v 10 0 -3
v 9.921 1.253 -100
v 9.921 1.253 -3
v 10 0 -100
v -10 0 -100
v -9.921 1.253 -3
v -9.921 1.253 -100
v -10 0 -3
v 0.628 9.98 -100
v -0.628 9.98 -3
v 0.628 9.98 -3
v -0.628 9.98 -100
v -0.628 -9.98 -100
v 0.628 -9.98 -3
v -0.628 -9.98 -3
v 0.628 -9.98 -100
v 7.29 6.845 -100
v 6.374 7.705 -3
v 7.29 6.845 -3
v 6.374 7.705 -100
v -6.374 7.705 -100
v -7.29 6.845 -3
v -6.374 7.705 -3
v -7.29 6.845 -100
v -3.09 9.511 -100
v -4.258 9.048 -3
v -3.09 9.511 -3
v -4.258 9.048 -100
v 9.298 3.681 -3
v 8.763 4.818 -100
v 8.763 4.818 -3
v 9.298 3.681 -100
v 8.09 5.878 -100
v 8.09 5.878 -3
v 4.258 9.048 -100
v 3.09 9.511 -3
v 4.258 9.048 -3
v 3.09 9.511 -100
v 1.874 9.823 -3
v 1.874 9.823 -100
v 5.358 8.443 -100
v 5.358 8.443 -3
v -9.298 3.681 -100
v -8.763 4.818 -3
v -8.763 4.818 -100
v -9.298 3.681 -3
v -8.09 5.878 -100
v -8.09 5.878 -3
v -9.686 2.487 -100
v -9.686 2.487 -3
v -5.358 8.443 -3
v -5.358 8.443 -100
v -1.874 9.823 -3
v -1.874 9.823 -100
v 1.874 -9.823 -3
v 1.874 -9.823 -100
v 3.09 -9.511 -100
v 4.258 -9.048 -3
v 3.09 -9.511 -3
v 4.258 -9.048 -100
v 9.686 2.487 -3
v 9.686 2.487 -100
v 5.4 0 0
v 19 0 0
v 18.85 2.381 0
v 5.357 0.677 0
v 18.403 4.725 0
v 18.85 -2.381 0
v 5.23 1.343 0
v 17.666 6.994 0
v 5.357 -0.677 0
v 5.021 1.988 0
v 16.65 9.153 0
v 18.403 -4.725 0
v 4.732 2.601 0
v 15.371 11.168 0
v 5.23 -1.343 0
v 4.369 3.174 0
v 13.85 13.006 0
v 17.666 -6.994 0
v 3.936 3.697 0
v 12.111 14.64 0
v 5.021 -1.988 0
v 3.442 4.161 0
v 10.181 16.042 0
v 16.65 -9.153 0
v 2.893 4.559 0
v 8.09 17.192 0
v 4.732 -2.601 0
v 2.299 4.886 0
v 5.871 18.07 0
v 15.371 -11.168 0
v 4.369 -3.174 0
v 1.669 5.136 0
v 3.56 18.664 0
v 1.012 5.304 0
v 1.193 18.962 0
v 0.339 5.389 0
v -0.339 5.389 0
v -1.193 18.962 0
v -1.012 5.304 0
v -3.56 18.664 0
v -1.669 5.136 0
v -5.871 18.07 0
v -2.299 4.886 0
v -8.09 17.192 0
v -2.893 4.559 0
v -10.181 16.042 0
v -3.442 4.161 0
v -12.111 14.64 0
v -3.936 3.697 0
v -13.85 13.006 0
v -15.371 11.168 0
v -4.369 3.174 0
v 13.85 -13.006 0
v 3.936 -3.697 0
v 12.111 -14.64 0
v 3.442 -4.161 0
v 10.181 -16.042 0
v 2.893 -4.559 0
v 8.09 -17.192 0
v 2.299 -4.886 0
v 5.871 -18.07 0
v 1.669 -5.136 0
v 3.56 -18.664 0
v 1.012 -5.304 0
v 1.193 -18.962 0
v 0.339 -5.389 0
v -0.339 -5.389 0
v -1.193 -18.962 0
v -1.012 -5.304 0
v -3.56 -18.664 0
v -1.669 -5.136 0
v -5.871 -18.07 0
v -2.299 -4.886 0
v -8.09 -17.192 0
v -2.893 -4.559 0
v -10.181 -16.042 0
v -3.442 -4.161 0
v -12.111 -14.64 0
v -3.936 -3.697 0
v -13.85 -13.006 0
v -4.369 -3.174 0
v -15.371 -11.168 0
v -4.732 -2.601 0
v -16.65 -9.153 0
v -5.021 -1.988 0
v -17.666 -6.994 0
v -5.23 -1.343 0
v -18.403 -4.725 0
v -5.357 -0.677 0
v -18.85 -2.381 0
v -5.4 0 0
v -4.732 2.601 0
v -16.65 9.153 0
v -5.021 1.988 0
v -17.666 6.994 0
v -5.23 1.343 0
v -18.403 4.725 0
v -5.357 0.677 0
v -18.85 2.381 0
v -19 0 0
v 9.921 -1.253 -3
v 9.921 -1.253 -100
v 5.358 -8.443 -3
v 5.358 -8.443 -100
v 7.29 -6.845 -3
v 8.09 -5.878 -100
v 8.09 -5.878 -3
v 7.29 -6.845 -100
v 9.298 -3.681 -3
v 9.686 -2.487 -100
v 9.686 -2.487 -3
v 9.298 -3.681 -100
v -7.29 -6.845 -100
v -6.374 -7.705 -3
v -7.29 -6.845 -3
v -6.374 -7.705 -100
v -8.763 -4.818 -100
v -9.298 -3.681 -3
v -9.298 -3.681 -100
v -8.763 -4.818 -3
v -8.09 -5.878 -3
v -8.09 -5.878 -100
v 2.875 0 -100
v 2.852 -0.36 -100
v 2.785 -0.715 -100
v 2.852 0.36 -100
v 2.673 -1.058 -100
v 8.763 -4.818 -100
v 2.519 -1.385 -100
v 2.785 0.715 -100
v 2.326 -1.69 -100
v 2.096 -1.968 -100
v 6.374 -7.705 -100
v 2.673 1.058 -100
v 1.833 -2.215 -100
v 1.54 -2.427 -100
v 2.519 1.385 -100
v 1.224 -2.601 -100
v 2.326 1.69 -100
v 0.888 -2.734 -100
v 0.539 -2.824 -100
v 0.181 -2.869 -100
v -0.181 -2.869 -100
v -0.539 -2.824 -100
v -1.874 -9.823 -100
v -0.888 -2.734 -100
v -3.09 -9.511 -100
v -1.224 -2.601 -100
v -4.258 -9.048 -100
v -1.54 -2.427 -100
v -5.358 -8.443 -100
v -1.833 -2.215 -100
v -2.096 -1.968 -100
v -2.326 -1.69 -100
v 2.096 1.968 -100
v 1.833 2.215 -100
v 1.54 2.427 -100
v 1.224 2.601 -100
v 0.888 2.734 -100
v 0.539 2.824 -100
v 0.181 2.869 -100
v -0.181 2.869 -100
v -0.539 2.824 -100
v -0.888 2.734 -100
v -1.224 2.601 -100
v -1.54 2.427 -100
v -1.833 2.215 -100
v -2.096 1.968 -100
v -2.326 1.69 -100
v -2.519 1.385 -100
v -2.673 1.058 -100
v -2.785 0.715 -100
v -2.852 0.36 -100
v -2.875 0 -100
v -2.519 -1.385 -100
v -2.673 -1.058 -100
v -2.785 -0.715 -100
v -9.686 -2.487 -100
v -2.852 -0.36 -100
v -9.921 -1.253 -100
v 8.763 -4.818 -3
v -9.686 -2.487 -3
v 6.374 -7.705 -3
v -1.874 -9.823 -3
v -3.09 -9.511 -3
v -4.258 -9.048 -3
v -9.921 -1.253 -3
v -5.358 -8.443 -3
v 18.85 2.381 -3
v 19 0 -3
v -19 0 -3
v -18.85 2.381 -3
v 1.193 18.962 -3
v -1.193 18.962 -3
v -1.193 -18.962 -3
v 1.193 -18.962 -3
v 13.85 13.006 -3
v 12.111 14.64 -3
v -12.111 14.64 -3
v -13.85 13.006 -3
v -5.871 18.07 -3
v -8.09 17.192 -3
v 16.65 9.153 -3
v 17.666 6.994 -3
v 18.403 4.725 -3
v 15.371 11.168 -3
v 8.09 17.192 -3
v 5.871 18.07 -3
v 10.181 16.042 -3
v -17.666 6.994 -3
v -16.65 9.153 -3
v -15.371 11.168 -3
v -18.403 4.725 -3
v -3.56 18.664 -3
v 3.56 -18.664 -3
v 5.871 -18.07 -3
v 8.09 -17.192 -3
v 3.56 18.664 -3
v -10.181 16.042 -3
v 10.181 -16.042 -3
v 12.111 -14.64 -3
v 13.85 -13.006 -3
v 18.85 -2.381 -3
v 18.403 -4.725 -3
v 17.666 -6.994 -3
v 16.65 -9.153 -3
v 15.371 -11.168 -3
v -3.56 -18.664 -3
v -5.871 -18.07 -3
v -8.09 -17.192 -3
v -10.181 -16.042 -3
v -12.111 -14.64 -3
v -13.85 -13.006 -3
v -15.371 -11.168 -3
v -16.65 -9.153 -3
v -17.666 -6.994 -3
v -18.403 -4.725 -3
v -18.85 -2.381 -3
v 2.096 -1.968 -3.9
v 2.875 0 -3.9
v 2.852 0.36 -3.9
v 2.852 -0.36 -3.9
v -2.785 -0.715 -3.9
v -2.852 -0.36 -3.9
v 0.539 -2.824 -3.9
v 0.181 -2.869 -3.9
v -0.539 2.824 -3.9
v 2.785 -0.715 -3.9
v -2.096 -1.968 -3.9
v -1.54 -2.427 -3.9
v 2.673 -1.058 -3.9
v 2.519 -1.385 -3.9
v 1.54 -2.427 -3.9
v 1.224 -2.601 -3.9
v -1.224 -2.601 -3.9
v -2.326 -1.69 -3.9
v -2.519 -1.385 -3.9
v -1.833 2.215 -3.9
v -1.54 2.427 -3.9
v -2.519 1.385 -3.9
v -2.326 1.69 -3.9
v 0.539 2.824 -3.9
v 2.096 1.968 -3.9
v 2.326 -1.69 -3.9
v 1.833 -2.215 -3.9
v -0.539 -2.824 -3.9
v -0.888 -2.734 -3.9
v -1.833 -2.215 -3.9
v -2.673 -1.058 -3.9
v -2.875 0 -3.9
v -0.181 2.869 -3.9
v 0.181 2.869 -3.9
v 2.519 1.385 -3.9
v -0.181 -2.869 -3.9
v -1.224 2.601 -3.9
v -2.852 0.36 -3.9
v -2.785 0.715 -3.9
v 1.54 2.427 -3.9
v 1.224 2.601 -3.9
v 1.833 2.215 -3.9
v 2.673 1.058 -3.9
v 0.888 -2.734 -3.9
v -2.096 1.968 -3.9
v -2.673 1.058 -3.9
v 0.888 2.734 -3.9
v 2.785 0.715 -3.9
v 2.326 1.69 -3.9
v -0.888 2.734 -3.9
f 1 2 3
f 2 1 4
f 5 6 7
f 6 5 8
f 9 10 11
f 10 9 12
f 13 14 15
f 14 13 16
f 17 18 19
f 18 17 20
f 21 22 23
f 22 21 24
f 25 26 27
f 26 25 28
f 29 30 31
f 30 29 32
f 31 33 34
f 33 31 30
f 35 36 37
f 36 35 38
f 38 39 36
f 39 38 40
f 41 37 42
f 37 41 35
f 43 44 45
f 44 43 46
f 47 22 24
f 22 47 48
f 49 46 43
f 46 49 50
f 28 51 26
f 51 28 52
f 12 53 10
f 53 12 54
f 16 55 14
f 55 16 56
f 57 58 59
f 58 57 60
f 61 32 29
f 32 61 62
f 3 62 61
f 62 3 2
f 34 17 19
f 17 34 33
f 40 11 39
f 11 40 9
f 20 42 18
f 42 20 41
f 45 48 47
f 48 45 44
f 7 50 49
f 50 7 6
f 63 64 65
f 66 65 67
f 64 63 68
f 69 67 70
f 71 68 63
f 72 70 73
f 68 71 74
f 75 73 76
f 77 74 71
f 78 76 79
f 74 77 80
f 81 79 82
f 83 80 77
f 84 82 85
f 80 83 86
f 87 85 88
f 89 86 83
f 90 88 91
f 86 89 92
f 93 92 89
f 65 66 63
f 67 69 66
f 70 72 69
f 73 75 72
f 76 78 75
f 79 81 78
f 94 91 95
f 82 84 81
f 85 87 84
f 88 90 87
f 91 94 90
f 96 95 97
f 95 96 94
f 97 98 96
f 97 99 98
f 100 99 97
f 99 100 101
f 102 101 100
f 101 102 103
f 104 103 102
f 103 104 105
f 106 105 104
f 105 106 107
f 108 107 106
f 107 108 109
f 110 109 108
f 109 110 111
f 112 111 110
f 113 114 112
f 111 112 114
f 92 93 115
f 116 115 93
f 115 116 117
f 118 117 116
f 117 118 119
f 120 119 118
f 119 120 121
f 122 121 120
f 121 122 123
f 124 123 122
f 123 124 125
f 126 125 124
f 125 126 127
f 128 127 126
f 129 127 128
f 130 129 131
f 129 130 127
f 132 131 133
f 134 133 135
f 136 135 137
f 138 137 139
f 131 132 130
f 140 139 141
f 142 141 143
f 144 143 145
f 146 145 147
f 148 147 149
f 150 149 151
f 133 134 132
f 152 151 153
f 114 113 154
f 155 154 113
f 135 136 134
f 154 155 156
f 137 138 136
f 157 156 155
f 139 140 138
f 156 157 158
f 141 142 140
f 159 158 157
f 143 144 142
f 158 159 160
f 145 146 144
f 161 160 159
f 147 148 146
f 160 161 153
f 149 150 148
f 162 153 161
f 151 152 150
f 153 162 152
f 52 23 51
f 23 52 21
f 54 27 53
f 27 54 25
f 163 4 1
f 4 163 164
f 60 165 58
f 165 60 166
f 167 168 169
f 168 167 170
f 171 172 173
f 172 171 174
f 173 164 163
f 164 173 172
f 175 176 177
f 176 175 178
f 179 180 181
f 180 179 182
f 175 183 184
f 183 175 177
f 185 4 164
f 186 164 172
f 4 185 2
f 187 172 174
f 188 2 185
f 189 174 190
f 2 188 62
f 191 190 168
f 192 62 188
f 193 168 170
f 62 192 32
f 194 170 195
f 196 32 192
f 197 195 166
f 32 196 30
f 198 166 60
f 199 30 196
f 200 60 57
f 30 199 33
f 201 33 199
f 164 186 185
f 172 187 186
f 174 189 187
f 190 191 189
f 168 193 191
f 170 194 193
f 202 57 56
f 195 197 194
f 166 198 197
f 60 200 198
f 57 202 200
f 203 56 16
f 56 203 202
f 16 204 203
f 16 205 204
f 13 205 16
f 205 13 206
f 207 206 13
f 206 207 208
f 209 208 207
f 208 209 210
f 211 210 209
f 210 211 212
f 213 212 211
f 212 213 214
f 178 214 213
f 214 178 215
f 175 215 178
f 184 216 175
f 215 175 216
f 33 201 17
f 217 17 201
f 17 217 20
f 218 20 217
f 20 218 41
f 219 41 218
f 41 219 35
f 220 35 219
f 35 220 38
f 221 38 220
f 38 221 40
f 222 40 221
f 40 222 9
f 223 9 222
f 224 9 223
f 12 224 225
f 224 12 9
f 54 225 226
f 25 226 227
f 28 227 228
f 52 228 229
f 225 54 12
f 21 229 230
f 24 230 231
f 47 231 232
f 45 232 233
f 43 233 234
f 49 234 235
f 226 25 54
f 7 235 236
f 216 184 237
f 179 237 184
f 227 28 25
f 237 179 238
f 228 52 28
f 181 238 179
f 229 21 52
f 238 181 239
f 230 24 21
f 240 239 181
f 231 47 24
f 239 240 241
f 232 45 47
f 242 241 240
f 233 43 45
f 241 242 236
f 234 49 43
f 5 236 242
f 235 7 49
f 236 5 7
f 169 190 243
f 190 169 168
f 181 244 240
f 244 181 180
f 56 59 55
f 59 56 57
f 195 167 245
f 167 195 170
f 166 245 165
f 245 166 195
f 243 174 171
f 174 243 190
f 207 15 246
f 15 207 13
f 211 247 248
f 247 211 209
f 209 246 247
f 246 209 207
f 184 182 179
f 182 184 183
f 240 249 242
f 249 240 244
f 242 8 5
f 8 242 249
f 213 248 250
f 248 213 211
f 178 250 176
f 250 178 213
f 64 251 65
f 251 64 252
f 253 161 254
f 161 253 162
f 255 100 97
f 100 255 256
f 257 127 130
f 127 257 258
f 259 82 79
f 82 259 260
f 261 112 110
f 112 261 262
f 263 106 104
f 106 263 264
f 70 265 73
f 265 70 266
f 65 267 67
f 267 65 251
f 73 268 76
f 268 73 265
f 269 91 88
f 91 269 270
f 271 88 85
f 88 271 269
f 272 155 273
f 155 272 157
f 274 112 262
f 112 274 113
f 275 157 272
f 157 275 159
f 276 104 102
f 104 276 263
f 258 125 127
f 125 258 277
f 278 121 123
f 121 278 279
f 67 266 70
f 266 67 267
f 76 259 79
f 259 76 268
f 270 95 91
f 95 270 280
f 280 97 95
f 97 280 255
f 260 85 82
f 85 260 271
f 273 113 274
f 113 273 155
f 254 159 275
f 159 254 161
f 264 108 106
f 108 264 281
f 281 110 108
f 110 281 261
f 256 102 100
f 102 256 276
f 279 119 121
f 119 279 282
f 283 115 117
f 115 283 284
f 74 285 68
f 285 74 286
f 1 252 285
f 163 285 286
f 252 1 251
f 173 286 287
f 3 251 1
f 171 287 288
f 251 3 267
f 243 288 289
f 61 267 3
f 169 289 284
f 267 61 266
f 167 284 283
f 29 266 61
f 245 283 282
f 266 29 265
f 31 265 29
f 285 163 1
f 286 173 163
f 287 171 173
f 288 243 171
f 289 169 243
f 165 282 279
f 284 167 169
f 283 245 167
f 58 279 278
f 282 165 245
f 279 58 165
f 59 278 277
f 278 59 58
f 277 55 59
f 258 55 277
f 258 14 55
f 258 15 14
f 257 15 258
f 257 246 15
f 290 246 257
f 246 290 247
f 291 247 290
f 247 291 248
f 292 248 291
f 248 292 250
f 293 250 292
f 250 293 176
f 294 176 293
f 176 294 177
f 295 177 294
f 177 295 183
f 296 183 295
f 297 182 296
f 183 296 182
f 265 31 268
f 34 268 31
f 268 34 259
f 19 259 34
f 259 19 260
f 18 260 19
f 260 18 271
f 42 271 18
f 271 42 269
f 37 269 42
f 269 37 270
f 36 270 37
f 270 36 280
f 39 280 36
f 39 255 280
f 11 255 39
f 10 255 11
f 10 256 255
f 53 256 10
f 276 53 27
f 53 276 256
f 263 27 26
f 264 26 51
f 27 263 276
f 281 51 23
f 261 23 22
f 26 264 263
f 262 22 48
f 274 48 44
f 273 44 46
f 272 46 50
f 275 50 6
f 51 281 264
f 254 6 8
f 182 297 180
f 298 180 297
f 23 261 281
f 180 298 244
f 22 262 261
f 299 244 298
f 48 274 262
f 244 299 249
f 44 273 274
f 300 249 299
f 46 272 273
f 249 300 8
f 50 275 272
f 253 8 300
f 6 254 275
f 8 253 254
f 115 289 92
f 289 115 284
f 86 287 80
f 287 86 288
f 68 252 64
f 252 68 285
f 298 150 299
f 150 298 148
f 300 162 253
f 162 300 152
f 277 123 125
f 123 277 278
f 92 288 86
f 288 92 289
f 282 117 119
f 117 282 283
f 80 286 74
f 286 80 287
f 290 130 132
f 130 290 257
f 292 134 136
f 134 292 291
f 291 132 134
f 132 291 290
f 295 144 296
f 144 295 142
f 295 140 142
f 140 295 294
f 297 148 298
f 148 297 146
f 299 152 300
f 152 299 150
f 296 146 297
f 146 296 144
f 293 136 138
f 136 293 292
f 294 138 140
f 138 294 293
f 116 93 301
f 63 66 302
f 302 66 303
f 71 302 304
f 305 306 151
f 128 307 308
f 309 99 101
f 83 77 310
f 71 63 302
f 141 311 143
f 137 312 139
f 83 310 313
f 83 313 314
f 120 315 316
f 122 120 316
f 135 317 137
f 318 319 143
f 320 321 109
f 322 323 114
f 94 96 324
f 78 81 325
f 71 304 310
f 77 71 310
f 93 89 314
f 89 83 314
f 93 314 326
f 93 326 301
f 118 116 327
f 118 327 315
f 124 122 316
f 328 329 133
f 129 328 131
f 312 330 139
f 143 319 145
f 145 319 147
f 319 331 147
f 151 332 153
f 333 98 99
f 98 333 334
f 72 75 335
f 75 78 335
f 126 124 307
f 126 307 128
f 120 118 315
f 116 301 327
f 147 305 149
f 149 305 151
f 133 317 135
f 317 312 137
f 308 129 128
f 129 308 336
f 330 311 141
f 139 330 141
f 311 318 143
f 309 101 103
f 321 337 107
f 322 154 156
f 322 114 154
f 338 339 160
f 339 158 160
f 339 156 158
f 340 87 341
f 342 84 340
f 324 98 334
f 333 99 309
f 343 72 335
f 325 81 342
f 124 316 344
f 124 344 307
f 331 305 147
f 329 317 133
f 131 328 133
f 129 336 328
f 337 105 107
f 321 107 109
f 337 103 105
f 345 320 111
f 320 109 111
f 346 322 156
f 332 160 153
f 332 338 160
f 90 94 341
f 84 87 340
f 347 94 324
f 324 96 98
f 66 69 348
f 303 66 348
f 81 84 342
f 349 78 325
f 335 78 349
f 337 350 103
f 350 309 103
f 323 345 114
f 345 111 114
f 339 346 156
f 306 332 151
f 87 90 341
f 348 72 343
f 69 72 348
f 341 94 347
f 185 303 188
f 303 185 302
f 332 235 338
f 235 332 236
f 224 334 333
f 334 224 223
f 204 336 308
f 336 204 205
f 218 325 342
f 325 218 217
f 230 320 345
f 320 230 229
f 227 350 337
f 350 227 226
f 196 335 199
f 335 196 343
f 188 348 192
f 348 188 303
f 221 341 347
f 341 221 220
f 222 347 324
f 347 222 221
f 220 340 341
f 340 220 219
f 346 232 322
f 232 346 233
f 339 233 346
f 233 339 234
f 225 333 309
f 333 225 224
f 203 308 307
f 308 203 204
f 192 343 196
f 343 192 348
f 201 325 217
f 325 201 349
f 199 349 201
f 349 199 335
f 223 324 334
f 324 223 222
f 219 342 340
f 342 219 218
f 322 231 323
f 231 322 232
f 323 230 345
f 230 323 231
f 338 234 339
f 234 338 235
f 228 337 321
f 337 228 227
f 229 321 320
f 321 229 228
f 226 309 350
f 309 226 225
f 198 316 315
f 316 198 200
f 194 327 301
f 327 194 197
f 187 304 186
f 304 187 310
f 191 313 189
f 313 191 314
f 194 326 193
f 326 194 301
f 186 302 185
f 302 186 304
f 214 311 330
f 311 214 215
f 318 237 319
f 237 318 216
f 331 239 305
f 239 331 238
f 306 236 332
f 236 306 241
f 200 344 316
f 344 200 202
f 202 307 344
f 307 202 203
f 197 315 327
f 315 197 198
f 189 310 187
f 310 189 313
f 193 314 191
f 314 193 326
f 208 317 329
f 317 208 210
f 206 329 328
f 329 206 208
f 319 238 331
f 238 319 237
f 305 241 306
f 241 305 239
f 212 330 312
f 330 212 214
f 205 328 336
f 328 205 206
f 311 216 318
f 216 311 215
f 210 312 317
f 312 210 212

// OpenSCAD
$fn = 50;


difference() {
	union() {
		translate(v = [0, 0, -100.0000000000]) {
			cylinder(h = 100, r = 10.0000000000);
		}
		translate(v = [0, 0, -3.0000000000]) {
			cylinder(h = 3, r = 19.0000000000);
		}
	}
	union() {
		translate(v = [0, 0, 0]) {
			rotate(a = [0, 0, 0]) {
				difference() {
					union() {
						#translate(v = [0, 0, -100.0000000000]) {
							cylinder(h = 100, r = 2.6000000000);
						}
						#translate(v = [0, 0, -3.9000000000]) {
							cylinder(h = 3.9000000000, r1 = 2.8750000000, r2 = 5.4000000000);
						}
						#translate(v = [0, 0, -100.0000000000]) {
							cylinder(h = 100, r = 2.8750000000);
						}
						#translate(v = [0, 0, -100.0000000000]) {
							cylinder(h = 100, r = 2.6000000000);
						}
					}
					union();
				}
			}
		}
	}
}
